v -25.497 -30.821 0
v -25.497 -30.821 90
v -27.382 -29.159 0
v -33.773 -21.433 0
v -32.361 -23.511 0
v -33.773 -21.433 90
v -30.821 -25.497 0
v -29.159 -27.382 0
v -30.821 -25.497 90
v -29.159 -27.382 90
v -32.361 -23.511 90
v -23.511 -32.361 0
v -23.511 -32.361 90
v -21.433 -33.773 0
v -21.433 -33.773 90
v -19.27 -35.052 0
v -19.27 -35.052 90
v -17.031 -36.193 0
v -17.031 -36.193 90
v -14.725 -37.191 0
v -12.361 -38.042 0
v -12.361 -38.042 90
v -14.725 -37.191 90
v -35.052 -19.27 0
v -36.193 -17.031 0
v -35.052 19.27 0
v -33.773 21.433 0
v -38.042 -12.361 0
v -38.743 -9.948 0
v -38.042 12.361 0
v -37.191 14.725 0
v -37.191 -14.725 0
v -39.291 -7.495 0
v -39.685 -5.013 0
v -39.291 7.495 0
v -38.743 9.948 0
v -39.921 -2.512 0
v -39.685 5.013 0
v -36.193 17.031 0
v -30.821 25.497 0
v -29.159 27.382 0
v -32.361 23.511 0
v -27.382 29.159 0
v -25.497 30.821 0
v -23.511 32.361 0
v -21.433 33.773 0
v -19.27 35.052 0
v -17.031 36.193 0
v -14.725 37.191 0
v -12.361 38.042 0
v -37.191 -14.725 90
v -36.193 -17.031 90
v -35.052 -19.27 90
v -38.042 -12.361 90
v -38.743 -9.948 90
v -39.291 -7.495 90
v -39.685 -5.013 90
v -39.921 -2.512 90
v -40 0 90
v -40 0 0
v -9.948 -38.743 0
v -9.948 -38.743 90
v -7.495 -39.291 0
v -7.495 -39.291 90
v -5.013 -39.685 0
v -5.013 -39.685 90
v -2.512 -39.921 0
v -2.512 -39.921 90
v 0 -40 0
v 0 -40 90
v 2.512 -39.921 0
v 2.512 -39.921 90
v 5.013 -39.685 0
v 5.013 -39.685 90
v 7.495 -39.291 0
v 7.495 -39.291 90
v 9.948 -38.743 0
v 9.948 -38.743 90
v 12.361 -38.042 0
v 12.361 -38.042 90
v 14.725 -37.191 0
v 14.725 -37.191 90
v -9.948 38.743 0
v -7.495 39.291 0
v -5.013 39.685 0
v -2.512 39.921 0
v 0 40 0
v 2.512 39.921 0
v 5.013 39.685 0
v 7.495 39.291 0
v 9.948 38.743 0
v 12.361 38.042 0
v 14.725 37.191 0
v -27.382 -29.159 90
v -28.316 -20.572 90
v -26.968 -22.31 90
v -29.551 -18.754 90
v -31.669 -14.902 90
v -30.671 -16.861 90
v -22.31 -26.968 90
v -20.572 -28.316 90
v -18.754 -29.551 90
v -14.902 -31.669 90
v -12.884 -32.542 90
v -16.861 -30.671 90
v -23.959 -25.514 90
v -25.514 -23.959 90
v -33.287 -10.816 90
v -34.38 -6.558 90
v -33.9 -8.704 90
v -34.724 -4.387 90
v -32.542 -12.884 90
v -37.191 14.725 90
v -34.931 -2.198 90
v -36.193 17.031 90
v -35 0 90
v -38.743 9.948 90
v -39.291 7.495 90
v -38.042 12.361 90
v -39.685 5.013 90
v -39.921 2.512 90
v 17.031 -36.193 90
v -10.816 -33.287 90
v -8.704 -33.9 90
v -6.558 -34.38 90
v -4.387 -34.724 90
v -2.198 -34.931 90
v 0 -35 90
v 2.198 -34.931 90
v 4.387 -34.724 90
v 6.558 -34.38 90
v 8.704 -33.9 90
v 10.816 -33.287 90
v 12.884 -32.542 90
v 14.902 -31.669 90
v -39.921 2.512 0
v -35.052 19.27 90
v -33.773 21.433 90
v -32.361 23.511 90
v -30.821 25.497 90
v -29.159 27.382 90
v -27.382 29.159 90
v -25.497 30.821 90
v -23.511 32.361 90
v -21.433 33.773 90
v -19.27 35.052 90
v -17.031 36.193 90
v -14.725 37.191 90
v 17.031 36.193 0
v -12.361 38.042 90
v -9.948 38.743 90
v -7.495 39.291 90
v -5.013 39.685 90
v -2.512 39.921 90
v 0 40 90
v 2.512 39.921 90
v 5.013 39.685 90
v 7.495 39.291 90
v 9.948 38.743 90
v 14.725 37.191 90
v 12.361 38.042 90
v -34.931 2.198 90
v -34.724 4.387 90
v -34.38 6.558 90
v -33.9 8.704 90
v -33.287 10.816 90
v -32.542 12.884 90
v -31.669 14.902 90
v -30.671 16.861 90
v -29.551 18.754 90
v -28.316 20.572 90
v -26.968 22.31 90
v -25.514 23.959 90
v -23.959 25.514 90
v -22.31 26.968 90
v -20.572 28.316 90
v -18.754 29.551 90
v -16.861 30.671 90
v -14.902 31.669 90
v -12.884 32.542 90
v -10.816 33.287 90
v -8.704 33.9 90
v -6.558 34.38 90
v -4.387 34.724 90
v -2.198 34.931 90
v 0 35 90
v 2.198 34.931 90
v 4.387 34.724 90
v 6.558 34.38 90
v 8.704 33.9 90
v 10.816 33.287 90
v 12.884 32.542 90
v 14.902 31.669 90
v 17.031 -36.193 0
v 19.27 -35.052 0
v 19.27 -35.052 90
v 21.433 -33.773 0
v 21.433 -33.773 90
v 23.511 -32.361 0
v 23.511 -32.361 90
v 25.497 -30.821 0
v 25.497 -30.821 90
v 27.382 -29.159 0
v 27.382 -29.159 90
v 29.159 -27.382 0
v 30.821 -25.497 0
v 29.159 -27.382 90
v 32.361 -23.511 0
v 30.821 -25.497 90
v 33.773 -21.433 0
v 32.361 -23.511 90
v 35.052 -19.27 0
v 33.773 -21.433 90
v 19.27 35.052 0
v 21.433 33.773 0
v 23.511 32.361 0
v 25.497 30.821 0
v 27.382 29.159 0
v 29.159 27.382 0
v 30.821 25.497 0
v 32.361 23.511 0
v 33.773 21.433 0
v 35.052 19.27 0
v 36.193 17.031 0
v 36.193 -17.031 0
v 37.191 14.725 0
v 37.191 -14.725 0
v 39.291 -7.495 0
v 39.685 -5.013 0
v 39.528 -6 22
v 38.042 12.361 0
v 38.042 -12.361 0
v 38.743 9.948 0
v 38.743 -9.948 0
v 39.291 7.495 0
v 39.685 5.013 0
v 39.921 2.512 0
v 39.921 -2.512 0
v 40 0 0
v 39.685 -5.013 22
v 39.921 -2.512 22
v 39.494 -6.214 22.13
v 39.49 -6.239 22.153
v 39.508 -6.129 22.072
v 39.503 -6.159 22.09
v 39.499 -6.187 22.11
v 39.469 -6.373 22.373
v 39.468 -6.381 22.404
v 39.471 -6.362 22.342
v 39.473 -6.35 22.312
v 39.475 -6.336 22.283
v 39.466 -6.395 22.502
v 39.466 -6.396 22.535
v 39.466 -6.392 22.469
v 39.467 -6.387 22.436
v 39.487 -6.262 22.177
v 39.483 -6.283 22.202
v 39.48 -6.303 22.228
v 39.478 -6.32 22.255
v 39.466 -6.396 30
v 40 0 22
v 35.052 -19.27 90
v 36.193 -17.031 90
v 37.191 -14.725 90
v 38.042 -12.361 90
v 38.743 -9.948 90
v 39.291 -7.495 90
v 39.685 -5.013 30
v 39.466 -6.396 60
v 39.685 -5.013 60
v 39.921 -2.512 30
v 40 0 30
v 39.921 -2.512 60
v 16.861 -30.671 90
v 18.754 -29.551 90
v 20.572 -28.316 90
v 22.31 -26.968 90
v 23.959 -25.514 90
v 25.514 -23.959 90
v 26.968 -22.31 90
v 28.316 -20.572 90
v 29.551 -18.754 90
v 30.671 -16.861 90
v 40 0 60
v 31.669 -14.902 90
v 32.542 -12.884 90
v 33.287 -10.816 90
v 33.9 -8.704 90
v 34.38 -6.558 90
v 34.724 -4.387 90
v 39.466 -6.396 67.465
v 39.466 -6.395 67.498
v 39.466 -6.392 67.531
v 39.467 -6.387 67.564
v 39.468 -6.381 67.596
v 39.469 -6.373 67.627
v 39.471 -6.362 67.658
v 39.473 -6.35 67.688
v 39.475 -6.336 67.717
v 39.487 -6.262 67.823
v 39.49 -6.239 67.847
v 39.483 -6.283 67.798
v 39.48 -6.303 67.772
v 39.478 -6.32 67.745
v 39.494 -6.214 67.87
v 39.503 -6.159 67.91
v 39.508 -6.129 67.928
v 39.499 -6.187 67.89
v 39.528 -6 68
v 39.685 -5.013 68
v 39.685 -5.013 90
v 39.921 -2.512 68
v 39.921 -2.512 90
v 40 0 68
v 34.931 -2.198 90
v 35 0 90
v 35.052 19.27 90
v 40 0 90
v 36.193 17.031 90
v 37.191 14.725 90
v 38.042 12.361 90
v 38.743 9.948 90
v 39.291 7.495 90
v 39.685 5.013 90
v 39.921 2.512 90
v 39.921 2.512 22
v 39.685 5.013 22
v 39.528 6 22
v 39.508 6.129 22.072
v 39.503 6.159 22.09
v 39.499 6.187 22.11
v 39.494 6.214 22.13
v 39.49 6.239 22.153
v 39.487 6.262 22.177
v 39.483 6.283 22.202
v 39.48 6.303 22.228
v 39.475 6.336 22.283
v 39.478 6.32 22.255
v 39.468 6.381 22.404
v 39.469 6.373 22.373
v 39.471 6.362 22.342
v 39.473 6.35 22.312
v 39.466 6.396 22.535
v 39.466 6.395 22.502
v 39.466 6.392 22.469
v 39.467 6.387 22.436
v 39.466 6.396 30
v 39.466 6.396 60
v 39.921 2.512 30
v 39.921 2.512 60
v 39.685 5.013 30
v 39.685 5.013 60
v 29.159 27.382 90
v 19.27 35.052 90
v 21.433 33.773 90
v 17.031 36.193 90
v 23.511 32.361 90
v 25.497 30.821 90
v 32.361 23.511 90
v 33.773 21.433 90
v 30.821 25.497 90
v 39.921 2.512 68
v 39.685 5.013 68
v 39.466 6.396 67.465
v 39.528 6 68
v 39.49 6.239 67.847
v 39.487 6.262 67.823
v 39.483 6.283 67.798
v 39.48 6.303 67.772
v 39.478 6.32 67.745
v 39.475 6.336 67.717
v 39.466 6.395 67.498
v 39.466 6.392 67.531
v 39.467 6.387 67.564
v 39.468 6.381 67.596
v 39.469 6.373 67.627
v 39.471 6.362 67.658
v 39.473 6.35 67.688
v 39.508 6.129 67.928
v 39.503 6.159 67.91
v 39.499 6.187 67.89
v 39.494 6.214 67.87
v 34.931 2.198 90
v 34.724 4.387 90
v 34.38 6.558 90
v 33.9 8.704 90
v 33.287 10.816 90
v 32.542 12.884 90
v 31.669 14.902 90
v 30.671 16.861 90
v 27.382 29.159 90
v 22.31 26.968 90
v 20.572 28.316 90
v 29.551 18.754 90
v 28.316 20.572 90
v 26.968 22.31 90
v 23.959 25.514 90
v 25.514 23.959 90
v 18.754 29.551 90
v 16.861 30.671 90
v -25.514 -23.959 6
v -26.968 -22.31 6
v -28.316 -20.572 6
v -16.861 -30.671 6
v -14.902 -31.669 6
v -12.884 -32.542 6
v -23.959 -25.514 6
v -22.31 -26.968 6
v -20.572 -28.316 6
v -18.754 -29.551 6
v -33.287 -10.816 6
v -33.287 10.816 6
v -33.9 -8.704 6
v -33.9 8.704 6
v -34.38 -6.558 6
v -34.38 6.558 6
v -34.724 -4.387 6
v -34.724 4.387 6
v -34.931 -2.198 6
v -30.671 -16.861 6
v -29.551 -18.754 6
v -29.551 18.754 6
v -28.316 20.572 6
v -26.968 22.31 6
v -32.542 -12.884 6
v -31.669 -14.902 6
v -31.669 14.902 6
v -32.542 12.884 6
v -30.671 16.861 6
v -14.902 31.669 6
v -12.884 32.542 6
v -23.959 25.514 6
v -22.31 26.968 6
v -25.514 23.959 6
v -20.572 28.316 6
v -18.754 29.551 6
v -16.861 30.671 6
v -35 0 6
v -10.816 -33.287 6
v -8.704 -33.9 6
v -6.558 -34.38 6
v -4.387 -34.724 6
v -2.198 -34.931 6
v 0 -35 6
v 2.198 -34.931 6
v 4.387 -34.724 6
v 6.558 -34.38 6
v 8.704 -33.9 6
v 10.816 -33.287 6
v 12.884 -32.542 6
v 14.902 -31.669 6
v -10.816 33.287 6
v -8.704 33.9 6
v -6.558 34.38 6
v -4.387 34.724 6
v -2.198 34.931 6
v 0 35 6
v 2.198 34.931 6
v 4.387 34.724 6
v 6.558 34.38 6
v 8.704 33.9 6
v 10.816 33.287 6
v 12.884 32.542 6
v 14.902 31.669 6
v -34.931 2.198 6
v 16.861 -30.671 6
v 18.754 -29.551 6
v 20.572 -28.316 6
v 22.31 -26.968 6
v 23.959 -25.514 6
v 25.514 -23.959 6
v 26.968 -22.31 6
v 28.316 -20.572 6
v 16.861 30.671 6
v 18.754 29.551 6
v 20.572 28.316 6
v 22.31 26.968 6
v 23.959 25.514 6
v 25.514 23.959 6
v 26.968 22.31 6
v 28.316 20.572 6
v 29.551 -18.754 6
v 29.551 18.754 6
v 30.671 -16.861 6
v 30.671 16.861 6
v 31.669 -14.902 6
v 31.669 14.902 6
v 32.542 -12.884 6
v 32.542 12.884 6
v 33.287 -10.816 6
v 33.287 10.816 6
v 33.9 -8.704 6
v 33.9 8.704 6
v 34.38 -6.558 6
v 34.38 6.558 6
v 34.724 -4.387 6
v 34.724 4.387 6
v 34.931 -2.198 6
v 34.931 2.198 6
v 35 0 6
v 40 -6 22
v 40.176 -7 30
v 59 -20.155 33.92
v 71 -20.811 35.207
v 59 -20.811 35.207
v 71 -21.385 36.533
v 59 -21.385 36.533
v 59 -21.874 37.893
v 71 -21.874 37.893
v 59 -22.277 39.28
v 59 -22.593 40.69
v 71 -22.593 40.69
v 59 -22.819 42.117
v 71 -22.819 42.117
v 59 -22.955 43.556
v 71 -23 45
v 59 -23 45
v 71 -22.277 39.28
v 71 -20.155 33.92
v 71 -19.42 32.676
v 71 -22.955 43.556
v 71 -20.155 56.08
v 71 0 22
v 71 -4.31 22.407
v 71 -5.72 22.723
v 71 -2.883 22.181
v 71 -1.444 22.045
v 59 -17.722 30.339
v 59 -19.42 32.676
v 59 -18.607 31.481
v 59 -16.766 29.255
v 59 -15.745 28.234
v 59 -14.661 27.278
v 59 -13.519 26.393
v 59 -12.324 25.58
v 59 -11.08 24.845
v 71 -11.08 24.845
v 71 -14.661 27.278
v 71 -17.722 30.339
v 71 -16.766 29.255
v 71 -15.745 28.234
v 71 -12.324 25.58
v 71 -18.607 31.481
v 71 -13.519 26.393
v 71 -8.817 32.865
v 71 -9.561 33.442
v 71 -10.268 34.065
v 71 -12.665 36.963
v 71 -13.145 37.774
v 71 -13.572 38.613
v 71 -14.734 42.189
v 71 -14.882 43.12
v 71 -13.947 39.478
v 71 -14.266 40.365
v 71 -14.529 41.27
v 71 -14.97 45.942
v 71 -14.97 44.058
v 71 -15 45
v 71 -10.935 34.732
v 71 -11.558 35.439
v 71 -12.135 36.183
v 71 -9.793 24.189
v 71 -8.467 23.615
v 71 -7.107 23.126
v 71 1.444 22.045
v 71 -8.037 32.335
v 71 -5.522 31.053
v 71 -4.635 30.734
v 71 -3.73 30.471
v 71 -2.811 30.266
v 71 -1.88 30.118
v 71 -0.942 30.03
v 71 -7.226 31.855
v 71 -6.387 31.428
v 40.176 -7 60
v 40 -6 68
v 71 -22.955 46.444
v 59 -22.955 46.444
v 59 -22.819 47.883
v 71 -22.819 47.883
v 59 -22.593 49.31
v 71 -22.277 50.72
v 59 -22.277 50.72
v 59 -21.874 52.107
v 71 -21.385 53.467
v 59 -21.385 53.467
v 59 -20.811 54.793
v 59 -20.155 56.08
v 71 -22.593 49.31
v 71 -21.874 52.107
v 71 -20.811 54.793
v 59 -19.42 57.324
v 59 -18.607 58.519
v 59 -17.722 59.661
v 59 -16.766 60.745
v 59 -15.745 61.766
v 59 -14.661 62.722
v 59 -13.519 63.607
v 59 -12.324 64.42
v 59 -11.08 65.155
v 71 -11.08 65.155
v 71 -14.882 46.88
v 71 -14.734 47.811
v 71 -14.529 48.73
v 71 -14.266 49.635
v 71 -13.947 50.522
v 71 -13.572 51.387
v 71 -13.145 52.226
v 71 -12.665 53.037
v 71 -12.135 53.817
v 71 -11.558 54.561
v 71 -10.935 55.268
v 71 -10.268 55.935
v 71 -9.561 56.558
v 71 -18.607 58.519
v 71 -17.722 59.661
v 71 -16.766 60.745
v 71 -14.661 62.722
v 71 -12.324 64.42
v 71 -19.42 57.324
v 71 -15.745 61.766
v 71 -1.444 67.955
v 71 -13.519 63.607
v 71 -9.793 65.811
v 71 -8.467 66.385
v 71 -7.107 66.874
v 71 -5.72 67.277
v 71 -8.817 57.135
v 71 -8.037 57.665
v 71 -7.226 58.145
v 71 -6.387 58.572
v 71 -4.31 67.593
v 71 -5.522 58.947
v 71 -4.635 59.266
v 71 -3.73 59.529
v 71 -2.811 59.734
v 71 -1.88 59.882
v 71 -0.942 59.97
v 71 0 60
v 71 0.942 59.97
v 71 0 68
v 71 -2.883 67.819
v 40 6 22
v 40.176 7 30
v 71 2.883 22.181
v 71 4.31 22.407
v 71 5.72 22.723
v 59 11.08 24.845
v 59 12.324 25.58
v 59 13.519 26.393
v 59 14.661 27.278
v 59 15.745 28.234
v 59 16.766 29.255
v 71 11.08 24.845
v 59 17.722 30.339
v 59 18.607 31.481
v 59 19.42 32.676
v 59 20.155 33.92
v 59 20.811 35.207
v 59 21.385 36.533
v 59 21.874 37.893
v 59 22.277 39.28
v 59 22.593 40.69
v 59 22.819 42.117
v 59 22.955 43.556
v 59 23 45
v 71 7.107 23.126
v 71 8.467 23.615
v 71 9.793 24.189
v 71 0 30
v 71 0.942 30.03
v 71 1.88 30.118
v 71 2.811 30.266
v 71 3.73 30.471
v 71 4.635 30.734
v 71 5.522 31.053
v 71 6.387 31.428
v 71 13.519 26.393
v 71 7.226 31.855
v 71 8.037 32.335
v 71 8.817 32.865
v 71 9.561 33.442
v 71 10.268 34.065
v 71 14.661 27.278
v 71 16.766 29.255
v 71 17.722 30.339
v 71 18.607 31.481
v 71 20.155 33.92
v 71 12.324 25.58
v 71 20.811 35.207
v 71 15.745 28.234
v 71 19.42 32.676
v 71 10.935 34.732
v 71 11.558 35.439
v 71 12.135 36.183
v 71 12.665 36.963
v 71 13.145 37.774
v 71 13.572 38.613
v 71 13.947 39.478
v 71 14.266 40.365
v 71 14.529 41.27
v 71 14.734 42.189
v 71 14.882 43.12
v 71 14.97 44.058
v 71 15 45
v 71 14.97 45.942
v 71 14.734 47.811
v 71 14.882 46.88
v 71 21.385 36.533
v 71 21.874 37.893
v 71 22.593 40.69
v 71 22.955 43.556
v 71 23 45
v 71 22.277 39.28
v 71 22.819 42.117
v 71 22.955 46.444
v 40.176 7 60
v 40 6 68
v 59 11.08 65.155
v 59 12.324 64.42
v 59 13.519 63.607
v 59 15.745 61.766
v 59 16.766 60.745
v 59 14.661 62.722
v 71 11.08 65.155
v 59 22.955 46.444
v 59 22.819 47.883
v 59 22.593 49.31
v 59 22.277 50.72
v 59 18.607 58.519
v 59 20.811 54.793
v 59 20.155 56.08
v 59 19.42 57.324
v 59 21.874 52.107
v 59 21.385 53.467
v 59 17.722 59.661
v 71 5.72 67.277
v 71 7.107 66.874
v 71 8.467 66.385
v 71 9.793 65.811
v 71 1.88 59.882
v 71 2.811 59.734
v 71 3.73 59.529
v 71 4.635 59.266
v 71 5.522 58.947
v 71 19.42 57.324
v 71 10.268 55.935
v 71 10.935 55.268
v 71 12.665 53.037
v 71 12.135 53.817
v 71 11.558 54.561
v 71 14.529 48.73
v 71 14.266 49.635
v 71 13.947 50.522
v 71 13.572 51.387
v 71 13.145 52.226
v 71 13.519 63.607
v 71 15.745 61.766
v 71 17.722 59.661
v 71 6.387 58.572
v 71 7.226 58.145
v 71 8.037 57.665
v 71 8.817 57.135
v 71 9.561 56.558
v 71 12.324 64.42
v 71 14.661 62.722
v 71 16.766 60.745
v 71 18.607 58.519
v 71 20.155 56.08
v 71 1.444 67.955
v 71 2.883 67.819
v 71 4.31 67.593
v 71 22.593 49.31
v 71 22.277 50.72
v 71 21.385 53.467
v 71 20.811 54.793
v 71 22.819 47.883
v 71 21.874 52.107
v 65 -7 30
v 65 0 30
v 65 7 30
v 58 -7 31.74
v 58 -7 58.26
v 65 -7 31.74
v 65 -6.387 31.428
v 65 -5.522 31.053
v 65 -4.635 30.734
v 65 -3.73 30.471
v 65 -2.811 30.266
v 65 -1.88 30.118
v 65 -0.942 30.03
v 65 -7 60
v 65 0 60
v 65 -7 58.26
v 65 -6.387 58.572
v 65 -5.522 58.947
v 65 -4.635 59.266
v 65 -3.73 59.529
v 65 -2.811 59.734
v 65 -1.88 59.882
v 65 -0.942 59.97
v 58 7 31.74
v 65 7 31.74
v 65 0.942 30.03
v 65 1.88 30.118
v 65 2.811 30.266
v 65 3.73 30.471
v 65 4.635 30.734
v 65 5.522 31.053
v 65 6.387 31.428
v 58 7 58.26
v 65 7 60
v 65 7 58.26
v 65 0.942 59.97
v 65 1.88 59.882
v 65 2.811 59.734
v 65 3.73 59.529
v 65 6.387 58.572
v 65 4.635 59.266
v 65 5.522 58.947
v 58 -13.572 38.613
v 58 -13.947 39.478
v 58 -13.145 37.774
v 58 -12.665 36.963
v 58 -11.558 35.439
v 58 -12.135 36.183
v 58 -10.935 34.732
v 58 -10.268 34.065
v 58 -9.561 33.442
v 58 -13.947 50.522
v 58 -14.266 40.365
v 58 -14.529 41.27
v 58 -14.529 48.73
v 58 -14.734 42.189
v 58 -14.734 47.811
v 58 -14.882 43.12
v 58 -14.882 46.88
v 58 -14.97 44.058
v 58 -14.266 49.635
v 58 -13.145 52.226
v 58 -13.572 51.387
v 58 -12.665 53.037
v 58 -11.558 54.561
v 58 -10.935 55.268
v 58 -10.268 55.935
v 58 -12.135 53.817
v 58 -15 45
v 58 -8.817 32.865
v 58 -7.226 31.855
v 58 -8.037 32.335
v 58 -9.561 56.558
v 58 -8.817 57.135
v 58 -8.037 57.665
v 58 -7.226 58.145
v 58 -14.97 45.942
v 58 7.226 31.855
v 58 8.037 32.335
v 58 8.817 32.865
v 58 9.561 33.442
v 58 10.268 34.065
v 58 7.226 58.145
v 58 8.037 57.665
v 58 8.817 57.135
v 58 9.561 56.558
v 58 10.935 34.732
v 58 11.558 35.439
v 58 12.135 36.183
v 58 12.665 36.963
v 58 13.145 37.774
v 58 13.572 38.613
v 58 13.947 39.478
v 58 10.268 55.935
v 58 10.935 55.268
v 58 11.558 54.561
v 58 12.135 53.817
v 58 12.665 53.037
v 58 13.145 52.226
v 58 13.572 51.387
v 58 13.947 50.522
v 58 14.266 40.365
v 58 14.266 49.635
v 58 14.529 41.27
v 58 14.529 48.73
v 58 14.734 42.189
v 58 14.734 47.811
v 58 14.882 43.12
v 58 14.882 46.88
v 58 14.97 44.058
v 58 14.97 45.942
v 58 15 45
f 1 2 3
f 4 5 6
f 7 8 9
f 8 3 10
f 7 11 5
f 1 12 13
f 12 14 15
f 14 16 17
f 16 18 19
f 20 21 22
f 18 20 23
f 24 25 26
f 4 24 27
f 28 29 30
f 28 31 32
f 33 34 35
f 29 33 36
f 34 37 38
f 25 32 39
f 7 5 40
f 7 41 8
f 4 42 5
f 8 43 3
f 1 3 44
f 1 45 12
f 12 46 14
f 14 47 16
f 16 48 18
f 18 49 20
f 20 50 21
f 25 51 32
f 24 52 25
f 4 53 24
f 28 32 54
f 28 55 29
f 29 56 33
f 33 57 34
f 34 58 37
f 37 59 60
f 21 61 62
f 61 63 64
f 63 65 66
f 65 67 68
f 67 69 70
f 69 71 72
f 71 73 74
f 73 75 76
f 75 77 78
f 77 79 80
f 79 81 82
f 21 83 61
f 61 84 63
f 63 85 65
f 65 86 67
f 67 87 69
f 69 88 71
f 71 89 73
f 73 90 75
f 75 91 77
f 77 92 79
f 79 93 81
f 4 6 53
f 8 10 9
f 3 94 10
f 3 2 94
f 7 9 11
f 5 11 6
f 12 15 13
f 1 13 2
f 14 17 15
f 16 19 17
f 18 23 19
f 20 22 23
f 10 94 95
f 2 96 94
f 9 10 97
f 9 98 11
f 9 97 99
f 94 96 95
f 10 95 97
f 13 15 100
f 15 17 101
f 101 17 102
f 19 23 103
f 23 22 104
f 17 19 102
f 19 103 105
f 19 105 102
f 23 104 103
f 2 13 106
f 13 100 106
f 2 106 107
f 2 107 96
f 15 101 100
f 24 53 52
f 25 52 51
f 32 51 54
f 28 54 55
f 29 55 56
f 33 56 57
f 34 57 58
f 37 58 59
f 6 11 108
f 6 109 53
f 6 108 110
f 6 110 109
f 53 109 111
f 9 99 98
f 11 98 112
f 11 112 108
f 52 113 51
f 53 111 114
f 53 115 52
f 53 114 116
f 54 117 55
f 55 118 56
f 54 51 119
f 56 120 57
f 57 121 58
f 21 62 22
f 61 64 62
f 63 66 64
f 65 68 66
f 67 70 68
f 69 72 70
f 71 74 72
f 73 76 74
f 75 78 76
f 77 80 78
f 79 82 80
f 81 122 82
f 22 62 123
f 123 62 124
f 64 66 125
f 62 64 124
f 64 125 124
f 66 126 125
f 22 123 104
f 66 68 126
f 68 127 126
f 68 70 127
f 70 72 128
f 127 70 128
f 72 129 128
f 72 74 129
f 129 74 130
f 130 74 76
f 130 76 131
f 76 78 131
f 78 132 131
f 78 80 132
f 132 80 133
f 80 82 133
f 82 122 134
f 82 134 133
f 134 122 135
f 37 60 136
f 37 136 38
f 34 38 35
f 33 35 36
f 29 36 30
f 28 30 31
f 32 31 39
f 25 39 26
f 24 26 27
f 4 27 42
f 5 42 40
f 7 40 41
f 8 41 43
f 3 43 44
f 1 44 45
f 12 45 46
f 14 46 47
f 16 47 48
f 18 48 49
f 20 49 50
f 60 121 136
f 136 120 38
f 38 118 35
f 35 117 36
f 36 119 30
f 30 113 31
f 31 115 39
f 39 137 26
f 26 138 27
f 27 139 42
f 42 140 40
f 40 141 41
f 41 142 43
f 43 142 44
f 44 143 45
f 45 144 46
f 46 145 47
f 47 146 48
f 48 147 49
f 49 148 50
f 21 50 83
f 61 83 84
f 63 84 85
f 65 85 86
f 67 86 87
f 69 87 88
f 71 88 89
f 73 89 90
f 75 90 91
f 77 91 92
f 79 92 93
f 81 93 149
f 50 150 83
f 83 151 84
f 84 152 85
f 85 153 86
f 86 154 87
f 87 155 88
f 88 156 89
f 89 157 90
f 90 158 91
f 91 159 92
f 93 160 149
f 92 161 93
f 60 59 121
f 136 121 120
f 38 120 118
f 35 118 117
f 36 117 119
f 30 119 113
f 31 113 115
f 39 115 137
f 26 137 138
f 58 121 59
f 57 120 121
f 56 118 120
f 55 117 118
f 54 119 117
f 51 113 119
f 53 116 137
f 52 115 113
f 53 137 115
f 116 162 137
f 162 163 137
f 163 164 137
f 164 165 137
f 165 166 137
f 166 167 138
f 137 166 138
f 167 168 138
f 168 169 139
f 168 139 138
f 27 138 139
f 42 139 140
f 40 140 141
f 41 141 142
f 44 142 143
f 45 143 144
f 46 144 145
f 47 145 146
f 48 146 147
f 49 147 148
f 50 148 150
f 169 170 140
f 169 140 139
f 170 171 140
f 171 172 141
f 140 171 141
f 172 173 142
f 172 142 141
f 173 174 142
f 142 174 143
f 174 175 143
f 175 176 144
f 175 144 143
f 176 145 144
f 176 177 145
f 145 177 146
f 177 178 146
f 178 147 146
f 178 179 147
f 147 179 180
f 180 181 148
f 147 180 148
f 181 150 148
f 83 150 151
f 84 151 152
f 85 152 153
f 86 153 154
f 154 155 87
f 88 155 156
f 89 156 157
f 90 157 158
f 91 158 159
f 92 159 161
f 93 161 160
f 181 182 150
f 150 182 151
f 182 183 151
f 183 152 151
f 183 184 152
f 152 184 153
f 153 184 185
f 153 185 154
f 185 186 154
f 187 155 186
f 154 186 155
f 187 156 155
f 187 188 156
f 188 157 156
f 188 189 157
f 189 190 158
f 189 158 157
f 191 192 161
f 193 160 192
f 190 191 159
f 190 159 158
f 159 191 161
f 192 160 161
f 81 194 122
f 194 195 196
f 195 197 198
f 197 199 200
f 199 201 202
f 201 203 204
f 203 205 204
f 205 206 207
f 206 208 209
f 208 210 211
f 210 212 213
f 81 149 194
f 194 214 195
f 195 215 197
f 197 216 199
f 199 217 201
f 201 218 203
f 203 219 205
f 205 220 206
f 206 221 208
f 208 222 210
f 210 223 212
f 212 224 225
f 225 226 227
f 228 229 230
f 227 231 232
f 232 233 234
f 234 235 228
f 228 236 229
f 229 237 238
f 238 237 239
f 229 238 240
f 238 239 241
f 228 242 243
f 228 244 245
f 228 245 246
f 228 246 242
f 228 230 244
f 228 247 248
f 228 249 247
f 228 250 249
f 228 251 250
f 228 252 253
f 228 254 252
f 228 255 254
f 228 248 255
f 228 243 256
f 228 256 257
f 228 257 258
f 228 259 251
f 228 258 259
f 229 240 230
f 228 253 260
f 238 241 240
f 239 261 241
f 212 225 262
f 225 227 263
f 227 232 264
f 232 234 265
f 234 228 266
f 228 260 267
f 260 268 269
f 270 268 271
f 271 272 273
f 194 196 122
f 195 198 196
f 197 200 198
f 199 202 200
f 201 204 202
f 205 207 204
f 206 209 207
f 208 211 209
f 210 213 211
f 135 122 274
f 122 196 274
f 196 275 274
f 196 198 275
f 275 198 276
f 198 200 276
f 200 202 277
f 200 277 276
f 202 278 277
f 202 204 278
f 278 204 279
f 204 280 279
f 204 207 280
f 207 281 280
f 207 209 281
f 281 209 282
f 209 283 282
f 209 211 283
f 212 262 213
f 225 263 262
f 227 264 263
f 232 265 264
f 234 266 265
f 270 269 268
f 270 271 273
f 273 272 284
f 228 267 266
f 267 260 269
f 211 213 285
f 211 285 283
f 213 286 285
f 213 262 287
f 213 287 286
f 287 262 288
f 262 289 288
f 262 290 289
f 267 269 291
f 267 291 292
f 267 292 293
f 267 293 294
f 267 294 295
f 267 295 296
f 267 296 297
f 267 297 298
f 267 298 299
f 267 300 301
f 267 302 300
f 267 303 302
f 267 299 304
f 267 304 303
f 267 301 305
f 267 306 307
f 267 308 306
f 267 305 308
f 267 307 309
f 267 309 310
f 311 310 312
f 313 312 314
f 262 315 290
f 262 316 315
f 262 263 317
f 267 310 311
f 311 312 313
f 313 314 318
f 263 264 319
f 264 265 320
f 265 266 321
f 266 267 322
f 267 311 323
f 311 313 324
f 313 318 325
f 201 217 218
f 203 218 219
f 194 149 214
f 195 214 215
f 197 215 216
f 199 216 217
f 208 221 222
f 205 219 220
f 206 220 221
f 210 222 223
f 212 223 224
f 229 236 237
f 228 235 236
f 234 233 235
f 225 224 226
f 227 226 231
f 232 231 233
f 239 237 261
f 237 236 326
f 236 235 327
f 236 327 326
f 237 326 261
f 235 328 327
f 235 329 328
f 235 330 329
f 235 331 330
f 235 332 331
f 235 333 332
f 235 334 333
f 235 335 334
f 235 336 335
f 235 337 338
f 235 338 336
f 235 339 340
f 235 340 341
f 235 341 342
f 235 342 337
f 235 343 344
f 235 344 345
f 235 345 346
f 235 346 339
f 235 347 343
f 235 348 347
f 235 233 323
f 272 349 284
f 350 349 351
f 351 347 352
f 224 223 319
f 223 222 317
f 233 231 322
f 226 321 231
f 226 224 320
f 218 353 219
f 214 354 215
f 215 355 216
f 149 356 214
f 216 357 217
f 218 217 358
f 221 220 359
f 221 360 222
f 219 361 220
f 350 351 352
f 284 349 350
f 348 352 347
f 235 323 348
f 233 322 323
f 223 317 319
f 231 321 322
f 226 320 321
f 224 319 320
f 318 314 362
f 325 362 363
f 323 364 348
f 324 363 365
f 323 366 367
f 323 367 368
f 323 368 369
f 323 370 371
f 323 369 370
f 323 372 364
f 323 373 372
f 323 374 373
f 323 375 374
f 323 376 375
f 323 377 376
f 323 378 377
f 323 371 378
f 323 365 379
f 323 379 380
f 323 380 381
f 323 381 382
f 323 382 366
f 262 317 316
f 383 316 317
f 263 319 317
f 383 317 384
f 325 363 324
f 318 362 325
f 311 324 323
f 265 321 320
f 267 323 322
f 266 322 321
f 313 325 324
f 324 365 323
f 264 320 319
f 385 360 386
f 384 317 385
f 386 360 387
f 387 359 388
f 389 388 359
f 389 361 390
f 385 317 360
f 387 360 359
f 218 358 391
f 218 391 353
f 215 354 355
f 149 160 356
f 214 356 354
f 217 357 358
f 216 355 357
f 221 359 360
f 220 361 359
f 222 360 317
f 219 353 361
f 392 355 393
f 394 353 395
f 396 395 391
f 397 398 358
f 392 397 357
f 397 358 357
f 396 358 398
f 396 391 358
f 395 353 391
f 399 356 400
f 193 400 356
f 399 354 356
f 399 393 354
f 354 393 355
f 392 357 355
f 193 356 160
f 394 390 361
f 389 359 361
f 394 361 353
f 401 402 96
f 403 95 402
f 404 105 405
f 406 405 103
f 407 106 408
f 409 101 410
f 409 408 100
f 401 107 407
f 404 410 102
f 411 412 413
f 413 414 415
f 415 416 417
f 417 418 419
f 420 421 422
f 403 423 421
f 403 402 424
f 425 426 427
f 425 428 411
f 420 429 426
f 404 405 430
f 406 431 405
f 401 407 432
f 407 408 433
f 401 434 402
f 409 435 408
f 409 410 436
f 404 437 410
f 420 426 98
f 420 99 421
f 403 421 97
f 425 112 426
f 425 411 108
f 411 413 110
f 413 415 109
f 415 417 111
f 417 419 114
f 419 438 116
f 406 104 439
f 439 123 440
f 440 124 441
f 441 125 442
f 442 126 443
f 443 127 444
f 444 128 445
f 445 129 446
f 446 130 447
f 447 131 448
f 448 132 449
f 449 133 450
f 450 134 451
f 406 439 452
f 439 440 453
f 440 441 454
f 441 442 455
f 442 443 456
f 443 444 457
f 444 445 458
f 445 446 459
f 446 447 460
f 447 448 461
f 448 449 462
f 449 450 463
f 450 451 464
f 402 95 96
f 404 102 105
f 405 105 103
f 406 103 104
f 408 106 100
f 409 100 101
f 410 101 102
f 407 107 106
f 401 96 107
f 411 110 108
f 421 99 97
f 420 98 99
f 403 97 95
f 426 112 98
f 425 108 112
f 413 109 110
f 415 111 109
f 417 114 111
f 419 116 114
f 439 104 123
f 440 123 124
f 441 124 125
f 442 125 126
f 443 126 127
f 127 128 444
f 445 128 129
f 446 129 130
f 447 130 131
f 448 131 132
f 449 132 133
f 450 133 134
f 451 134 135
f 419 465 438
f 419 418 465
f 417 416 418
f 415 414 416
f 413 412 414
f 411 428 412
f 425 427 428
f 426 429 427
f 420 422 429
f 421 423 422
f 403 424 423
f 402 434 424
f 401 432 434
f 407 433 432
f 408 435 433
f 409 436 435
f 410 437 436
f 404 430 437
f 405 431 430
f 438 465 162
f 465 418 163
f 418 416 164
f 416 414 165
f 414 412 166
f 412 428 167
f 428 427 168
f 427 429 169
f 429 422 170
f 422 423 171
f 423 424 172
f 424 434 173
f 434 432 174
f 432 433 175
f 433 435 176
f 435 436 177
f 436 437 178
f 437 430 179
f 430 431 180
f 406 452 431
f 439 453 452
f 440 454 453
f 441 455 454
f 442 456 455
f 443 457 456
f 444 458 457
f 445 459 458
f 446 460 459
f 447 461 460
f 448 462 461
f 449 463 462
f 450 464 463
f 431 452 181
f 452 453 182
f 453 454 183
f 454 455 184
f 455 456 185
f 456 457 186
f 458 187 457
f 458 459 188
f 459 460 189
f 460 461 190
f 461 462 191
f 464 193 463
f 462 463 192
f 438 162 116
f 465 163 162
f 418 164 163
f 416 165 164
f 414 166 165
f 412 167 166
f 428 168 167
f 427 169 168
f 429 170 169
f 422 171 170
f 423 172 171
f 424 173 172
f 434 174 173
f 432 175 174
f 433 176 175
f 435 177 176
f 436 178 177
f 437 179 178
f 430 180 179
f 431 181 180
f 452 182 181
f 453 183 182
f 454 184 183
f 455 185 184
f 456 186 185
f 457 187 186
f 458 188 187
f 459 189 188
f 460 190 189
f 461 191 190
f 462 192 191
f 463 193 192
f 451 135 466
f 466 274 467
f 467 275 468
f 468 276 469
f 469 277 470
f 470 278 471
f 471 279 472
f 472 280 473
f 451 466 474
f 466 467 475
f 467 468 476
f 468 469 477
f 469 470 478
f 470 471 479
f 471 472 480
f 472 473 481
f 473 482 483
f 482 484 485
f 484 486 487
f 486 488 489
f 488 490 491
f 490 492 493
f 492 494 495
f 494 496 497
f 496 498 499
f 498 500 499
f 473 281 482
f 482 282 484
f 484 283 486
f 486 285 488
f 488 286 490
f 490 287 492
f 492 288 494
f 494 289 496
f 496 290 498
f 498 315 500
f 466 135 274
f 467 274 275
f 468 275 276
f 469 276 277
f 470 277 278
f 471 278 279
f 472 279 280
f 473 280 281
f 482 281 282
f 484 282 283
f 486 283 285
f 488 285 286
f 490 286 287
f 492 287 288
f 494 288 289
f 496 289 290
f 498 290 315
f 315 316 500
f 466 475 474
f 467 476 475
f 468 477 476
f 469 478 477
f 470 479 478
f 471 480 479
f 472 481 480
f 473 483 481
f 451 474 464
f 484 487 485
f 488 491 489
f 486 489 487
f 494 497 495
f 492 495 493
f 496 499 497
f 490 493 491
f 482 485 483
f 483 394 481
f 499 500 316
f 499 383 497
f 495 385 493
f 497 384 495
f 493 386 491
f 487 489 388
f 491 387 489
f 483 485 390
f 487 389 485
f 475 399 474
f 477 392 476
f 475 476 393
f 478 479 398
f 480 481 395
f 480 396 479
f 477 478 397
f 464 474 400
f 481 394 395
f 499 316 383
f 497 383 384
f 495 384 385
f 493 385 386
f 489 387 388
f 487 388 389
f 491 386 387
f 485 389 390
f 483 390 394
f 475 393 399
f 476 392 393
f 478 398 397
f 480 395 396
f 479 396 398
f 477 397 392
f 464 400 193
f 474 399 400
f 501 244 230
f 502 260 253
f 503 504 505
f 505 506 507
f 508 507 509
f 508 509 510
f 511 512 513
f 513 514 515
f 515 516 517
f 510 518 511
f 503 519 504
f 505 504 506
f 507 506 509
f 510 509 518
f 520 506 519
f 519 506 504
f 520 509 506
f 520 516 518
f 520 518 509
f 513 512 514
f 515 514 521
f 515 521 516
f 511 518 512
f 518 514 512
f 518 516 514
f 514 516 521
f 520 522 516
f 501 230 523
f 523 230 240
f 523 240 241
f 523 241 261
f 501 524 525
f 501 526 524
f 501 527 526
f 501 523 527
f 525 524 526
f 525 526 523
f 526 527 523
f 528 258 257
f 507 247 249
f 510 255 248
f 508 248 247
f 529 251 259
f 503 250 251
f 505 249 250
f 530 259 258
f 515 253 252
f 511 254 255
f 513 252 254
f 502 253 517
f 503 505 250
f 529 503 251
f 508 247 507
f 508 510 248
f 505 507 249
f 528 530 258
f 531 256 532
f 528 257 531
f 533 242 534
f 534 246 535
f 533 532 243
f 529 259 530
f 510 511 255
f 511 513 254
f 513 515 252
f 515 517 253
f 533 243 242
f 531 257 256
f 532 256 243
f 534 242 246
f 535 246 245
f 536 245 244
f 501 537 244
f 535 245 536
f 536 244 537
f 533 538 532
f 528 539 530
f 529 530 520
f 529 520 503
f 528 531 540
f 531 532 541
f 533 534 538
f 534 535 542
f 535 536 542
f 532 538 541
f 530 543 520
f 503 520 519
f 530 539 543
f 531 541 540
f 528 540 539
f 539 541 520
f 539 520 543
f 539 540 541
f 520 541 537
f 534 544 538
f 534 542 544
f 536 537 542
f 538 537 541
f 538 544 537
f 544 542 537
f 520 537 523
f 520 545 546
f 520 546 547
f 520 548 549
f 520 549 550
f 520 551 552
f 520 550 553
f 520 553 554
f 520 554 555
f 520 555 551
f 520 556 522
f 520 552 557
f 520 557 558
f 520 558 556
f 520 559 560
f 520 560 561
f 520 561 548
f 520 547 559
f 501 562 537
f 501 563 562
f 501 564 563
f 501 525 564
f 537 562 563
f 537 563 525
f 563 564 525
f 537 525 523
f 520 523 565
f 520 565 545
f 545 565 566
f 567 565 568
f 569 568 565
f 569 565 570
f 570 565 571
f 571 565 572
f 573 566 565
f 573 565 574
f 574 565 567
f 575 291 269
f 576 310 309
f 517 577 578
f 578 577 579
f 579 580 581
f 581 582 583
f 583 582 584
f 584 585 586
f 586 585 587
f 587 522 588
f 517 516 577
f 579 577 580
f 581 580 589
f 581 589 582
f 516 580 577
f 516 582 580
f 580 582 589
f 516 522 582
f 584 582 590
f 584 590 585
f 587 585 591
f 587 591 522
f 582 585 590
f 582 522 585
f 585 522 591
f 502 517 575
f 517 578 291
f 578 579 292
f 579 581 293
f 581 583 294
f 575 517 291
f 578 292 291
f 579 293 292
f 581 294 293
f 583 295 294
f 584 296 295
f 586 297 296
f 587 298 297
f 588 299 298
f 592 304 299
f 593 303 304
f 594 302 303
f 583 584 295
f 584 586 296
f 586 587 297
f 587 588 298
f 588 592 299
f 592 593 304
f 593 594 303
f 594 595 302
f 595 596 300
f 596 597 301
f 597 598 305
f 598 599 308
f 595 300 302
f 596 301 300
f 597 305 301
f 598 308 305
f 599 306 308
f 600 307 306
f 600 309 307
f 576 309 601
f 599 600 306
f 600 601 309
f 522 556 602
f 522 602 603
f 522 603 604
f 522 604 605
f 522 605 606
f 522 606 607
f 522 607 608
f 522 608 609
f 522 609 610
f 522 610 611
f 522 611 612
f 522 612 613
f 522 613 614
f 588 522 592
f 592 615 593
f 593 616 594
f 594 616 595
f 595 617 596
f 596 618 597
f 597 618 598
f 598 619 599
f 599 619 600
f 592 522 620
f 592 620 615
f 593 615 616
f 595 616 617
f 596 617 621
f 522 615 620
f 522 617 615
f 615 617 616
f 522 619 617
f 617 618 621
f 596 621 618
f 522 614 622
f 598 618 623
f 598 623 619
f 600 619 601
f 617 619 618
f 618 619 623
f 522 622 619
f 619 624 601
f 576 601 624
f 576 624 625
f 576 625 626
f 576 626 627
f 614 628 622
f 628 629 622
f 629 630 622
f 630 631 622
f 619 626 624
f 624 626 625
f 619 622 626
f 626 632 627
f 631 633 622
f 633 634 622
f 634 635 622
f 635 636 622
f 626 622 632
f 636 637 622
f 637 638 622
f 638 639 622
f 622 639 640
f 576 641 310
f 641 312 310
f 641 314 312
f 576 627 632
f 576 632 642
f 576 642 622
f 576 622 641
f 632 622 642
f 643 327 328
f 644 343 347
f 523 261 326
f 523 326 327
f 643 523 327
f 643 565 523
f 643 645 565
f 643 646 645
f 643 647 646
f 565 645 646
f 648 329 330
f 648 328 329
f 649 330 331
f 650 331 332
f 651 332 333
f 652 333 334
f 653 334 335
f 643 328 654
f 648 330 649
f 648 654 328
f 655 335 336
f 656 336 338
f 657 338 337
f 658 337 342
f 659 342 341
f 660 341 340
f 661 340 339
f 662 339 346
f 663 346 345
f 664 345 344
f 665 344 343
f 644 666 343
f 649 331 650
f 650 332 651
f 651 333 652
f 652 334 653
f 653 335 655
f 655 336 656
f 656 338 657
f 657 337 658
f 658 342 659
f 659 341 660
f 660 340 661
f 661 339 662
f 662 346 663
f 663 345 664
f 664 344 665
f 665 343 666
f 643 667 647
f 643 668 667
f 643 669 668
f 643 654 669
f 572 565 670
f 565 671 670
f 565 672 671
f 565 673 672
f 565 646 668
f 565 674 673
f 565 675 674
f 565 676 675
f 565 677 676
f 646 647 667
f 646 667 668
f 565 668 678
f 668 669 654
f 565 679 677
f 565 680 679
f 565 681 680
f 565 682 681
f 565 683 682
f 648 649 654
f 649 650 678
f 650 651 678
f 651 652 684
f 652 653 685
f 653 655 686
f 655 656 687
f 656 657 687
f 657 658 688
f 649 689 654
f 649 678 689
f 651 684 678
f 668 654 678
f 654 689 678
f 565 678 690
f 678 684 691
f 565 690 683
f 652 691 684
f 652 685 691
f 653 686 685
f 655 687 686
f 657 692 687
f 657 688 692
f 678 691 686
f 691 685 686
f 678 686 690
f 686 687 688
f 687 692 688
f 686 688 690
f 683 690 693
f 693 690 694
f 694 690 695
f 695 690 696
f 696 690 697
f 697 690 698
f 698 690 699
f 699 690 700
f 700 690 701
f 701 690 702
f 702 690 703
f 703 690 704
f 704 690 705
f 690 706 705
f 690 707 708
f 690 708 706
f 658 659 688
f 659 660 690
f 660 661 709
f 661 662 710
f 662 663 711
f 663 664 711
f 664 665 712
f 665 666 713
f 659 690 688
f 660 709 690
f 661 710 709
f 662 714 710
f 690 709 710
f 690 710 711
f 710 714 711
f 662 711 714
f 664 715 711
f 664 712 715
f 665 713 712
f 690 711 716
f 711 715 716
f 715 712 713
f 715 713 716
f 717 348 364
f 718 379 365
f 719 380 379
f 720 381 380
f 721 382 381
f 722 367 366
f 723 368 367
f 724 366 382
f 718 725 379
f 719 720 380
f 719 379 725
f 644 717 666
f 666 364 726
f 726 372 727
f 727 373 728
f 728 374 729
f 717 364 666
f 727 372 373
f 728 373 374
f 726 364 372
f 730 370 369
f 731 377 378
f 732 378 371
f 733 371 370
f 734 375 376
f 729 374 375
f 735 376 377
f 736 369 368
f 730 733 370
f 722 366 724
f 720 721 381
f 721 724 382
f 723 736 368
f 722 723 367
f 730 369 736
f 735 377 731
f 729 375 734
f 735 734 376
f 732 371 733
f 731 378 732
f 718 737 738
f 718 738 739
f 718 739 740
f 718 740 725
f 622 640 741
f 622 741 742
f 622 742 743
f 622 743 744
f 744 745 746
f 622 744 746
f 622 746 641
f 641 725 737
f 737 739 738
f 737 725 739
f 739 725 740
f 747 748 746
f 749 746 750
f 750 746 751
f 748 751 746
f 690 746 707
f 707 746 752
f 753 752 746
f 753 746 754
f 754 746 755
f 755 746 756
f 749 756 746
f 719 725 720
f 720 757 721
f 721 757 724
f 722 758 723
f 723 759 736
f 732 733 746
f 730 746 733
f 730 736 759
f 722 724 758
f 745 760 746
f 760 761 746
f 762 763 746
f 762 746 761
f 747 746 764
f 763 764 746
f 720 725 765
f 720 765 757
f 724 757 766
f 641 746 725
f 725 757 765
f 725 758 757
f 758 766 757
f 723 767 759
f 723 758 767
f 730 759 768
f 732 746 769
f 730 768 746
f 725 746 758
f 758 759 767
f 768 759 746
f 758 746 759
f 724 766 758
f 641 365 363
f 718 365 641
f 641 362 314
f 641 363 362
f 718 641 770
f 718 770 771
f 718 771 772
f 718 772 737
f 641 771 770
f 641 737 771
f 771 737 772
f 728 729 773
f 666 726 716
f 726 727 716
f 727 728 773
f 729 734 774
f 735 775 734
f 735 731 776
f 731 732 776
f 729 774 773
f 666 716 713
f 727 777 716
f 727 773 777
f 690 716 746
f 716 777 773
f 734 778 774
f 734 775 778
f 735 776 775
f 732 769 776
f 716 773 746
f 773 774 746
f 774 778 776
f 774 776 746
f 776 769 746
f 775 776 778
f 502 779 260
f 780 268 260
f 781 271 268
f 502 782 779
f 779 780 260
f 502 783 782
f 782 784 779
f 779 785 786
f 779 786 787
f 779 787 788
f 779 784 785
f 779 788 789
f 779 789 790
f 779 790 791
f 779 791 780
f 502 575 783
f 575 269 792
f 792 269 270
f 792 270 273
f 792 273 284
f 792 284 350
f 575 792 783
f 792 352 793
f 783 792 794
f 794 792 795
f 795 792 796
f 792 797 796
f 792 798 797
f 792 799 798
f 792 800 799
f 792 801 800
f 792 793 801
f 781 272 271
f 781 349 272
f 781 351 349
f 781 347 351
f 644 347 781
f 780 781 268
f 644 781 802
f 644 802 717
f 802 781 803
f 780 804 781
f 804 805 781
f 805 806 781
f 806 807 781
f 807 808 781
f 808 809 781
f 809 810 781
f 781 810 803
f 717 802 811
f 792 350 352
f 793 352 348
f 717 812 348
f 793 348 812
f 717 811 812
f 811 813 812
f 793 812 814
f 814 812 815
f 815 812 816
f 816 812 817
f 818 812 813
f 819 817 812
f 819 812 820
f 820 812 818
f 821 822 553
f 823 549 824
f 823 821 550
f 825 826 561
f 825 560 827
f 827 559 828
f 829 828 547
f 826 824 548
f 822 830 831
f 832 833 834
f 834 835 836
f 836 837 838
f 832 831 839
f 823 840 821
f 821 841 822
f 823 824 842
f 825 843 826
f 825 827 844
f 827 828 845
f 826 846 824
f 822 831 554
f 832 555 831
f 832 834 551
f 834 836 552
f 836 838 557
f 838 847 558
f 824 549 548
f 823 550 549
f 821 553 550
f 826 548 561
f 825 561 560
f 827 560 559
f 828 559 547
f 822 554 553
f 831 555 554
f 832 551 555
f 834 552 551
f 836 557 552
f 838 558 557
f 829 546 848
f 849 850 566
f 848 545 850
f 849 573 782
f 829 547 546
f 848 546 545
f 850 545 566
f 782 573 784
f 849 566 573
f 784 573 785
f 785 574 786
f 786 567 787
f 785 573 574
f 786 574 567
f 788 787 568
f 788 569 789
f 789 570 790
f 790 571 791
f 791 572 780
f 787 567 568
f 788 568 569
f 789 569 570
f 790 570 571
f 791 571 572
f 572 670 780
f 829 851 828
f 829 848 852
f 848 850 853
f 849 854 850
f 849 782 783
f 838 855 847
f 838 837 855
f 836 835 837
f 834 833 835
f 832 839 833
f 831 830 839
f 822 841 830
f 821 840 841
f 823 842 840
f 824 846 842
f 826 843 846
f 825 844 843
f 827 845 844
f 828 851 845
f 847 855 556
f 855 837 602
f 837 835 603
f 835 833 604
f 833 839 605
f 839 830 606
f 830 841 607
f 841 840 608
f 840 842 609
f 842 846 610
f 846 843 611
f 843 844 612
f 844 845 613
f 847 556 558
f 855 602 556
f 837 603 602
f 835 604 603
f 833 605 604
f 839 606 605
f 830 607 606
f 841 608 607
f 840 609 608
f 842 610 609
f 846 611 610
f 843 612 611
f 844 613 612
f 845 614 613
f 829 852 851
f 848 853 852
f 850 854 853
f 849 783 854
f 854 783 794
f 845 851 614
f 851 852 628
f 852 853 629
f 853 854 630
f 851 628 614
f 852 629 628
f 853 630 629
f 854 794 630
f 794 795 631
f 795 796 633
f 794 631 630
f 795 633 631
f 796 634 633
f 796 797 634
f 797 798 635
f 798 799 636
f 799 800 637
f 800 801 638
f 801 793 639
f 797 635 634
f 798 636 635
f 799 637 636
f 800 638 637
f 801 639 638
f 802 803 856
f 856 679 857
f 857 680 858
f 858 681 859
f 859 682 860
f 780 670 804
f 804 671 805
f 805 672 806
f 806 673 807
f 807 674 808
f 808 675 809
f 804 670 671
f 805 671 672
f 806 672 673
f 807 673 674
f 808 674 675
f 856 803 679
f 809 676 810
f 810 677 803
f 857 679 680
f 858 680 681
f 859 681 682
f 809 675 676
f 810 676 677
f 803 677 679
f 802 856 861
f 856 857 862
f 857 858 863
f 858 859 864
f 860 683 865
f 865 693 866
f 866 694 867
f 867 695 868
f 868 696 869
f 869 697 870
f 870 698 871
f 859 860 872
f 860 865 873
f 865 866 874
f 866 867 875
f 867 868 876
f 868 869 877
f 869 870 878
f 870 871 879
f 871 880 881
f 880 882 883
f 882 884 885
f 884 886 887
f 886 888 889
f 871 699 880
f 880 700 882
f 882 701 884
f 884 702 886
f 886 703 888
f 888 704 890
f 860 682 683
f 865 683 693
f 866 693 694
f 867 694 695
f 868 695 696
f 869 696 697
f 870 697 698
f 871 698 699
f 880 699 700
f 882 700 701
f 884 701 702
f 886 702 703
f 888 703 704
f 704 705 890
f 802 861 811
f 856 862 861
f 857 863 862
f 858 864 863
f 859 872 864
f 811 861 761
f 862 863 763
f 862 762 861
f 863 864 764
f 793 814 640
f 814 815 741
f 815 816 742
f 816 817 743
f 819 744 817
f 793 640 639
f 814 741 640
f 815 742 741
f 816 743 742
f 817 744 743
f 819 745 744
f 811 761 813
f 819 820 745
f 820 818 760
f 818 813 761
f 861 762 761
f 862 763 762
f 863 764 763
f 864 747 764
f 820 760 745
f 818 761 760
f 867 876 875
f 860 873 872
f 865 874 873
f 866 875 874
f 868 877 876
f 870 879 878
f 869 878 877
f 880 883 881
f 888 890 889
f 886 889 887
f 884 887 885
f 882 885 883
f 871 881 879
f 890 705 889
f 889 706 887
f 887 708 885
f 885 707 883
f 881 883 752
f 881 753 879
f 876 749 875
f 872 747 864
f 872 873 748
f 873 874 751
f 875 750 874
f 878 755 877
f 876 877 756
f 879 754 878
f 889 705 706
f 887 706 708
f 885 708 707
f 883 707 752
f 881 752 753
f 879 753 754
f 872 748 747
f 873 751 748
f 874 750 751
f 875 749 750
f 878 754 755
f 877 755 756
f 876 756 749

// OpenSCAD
$fn = 100; // 滑らかな曲線にするための解像度

// --- 本体パラメータ ---
mug_outer_d = 80;
mug_inner_d = 70;
mug_h = 90;
mug_bottom_thickness = 6;

// --- 取手パラメータ ---
handle_inner_h = 30;        // 指を入れる空間の高さ
handle_inner_w = 25;        // 指を入れる空間の幅 (本体からの距離)
handle_thickness = 8;       // 取手の肉厚
handle_y_width = 12;        // 取手の奥行き (Y軸方向の太さ)

// 本体と取手を結合
union() {
    // 1. マグ本体
    difference() {
        // 外側の円筒
        cylinder(h = mug_h, d = mug_outer_d);
        
        // 内側をくり抜くための円筒
        // 底面の厚みを残すために Z 方向にずらす
        translate([0, 0, mug_bottom_thickness])
            cylinder(h = mug_h + 1, d = mug_inner_d); // 確実に貫通させるため少し高くする
    }

    // 2. 取手
    // 取手全体の高さを計算
    handle_total_h = handle_inner_h + 2 * handle_thickness;
    // 取手をマグカップの高さ方向中央に配置するためのZ座標を計算
    handle_z_pos = (mug_h - handle_total_h) / 2;

    // difference() を使って、ソリッドのD字形状から内側の穴をくり抜く
    difference() {
        // 外側のD字形状 (ソリッド)
        // 本体側面の薄い板と、外側の円筒を hull() で滑らかに繋いで作成
        hull() {
            // 本体との接続部分 (アンカーとなる薄い直方体)
            // 確実に結合させるためにX方向に1mmめり込ませる
            translate([mug_outer_d/2 - 1, -handle_y_width/2, handle_z_pos])
                cube([1, handle_y_width, handle_total_h]);

            // D字のカーブ部分 (円筒)
            // 中心を handle_inner_w だけ離れた位置に置くことで、内側の空間幅を確保
            translate([mug_outer_d/2 + handle_inner_w, 0, handle_z_pos + handle_total_h/2])
                rotate([0, 90, 0])
                    cylinder(h = handle_y_width, r = handle_total_h/2, center = true);
        }
        
        // 【修正点】くり抜く内側の穴もD字形状にする
        // 直方体と円筒を union して作成
        union() {
            // 指が入る主要な空間 (直方体)
            // マグ本体に少しめり込ませ、Y方向に少し大きくして確実に貫通させる
            translate([mug_outer_d/2 - 1, -handle_y_width/2 - 1, handle_z_pos + handle_thickness])
                cube([handle_inner_w + 1, handle_y_width + 2, handle_inner_h]);

            // 指先のカーブに合わせた空間 (円筒)
            // Y軸方向に少し大きくして確実に貫通させる
            translate([mug_outer_d/2 + handle_inner_w, 0, handle_z_pos + handle_thickness + handle_inner_h/2])
                rotate([0, 90, 0])
                    cylinder(h = handle_y_width + 2, r = handle_inner_h/2, center = true);
        }
    }
}
